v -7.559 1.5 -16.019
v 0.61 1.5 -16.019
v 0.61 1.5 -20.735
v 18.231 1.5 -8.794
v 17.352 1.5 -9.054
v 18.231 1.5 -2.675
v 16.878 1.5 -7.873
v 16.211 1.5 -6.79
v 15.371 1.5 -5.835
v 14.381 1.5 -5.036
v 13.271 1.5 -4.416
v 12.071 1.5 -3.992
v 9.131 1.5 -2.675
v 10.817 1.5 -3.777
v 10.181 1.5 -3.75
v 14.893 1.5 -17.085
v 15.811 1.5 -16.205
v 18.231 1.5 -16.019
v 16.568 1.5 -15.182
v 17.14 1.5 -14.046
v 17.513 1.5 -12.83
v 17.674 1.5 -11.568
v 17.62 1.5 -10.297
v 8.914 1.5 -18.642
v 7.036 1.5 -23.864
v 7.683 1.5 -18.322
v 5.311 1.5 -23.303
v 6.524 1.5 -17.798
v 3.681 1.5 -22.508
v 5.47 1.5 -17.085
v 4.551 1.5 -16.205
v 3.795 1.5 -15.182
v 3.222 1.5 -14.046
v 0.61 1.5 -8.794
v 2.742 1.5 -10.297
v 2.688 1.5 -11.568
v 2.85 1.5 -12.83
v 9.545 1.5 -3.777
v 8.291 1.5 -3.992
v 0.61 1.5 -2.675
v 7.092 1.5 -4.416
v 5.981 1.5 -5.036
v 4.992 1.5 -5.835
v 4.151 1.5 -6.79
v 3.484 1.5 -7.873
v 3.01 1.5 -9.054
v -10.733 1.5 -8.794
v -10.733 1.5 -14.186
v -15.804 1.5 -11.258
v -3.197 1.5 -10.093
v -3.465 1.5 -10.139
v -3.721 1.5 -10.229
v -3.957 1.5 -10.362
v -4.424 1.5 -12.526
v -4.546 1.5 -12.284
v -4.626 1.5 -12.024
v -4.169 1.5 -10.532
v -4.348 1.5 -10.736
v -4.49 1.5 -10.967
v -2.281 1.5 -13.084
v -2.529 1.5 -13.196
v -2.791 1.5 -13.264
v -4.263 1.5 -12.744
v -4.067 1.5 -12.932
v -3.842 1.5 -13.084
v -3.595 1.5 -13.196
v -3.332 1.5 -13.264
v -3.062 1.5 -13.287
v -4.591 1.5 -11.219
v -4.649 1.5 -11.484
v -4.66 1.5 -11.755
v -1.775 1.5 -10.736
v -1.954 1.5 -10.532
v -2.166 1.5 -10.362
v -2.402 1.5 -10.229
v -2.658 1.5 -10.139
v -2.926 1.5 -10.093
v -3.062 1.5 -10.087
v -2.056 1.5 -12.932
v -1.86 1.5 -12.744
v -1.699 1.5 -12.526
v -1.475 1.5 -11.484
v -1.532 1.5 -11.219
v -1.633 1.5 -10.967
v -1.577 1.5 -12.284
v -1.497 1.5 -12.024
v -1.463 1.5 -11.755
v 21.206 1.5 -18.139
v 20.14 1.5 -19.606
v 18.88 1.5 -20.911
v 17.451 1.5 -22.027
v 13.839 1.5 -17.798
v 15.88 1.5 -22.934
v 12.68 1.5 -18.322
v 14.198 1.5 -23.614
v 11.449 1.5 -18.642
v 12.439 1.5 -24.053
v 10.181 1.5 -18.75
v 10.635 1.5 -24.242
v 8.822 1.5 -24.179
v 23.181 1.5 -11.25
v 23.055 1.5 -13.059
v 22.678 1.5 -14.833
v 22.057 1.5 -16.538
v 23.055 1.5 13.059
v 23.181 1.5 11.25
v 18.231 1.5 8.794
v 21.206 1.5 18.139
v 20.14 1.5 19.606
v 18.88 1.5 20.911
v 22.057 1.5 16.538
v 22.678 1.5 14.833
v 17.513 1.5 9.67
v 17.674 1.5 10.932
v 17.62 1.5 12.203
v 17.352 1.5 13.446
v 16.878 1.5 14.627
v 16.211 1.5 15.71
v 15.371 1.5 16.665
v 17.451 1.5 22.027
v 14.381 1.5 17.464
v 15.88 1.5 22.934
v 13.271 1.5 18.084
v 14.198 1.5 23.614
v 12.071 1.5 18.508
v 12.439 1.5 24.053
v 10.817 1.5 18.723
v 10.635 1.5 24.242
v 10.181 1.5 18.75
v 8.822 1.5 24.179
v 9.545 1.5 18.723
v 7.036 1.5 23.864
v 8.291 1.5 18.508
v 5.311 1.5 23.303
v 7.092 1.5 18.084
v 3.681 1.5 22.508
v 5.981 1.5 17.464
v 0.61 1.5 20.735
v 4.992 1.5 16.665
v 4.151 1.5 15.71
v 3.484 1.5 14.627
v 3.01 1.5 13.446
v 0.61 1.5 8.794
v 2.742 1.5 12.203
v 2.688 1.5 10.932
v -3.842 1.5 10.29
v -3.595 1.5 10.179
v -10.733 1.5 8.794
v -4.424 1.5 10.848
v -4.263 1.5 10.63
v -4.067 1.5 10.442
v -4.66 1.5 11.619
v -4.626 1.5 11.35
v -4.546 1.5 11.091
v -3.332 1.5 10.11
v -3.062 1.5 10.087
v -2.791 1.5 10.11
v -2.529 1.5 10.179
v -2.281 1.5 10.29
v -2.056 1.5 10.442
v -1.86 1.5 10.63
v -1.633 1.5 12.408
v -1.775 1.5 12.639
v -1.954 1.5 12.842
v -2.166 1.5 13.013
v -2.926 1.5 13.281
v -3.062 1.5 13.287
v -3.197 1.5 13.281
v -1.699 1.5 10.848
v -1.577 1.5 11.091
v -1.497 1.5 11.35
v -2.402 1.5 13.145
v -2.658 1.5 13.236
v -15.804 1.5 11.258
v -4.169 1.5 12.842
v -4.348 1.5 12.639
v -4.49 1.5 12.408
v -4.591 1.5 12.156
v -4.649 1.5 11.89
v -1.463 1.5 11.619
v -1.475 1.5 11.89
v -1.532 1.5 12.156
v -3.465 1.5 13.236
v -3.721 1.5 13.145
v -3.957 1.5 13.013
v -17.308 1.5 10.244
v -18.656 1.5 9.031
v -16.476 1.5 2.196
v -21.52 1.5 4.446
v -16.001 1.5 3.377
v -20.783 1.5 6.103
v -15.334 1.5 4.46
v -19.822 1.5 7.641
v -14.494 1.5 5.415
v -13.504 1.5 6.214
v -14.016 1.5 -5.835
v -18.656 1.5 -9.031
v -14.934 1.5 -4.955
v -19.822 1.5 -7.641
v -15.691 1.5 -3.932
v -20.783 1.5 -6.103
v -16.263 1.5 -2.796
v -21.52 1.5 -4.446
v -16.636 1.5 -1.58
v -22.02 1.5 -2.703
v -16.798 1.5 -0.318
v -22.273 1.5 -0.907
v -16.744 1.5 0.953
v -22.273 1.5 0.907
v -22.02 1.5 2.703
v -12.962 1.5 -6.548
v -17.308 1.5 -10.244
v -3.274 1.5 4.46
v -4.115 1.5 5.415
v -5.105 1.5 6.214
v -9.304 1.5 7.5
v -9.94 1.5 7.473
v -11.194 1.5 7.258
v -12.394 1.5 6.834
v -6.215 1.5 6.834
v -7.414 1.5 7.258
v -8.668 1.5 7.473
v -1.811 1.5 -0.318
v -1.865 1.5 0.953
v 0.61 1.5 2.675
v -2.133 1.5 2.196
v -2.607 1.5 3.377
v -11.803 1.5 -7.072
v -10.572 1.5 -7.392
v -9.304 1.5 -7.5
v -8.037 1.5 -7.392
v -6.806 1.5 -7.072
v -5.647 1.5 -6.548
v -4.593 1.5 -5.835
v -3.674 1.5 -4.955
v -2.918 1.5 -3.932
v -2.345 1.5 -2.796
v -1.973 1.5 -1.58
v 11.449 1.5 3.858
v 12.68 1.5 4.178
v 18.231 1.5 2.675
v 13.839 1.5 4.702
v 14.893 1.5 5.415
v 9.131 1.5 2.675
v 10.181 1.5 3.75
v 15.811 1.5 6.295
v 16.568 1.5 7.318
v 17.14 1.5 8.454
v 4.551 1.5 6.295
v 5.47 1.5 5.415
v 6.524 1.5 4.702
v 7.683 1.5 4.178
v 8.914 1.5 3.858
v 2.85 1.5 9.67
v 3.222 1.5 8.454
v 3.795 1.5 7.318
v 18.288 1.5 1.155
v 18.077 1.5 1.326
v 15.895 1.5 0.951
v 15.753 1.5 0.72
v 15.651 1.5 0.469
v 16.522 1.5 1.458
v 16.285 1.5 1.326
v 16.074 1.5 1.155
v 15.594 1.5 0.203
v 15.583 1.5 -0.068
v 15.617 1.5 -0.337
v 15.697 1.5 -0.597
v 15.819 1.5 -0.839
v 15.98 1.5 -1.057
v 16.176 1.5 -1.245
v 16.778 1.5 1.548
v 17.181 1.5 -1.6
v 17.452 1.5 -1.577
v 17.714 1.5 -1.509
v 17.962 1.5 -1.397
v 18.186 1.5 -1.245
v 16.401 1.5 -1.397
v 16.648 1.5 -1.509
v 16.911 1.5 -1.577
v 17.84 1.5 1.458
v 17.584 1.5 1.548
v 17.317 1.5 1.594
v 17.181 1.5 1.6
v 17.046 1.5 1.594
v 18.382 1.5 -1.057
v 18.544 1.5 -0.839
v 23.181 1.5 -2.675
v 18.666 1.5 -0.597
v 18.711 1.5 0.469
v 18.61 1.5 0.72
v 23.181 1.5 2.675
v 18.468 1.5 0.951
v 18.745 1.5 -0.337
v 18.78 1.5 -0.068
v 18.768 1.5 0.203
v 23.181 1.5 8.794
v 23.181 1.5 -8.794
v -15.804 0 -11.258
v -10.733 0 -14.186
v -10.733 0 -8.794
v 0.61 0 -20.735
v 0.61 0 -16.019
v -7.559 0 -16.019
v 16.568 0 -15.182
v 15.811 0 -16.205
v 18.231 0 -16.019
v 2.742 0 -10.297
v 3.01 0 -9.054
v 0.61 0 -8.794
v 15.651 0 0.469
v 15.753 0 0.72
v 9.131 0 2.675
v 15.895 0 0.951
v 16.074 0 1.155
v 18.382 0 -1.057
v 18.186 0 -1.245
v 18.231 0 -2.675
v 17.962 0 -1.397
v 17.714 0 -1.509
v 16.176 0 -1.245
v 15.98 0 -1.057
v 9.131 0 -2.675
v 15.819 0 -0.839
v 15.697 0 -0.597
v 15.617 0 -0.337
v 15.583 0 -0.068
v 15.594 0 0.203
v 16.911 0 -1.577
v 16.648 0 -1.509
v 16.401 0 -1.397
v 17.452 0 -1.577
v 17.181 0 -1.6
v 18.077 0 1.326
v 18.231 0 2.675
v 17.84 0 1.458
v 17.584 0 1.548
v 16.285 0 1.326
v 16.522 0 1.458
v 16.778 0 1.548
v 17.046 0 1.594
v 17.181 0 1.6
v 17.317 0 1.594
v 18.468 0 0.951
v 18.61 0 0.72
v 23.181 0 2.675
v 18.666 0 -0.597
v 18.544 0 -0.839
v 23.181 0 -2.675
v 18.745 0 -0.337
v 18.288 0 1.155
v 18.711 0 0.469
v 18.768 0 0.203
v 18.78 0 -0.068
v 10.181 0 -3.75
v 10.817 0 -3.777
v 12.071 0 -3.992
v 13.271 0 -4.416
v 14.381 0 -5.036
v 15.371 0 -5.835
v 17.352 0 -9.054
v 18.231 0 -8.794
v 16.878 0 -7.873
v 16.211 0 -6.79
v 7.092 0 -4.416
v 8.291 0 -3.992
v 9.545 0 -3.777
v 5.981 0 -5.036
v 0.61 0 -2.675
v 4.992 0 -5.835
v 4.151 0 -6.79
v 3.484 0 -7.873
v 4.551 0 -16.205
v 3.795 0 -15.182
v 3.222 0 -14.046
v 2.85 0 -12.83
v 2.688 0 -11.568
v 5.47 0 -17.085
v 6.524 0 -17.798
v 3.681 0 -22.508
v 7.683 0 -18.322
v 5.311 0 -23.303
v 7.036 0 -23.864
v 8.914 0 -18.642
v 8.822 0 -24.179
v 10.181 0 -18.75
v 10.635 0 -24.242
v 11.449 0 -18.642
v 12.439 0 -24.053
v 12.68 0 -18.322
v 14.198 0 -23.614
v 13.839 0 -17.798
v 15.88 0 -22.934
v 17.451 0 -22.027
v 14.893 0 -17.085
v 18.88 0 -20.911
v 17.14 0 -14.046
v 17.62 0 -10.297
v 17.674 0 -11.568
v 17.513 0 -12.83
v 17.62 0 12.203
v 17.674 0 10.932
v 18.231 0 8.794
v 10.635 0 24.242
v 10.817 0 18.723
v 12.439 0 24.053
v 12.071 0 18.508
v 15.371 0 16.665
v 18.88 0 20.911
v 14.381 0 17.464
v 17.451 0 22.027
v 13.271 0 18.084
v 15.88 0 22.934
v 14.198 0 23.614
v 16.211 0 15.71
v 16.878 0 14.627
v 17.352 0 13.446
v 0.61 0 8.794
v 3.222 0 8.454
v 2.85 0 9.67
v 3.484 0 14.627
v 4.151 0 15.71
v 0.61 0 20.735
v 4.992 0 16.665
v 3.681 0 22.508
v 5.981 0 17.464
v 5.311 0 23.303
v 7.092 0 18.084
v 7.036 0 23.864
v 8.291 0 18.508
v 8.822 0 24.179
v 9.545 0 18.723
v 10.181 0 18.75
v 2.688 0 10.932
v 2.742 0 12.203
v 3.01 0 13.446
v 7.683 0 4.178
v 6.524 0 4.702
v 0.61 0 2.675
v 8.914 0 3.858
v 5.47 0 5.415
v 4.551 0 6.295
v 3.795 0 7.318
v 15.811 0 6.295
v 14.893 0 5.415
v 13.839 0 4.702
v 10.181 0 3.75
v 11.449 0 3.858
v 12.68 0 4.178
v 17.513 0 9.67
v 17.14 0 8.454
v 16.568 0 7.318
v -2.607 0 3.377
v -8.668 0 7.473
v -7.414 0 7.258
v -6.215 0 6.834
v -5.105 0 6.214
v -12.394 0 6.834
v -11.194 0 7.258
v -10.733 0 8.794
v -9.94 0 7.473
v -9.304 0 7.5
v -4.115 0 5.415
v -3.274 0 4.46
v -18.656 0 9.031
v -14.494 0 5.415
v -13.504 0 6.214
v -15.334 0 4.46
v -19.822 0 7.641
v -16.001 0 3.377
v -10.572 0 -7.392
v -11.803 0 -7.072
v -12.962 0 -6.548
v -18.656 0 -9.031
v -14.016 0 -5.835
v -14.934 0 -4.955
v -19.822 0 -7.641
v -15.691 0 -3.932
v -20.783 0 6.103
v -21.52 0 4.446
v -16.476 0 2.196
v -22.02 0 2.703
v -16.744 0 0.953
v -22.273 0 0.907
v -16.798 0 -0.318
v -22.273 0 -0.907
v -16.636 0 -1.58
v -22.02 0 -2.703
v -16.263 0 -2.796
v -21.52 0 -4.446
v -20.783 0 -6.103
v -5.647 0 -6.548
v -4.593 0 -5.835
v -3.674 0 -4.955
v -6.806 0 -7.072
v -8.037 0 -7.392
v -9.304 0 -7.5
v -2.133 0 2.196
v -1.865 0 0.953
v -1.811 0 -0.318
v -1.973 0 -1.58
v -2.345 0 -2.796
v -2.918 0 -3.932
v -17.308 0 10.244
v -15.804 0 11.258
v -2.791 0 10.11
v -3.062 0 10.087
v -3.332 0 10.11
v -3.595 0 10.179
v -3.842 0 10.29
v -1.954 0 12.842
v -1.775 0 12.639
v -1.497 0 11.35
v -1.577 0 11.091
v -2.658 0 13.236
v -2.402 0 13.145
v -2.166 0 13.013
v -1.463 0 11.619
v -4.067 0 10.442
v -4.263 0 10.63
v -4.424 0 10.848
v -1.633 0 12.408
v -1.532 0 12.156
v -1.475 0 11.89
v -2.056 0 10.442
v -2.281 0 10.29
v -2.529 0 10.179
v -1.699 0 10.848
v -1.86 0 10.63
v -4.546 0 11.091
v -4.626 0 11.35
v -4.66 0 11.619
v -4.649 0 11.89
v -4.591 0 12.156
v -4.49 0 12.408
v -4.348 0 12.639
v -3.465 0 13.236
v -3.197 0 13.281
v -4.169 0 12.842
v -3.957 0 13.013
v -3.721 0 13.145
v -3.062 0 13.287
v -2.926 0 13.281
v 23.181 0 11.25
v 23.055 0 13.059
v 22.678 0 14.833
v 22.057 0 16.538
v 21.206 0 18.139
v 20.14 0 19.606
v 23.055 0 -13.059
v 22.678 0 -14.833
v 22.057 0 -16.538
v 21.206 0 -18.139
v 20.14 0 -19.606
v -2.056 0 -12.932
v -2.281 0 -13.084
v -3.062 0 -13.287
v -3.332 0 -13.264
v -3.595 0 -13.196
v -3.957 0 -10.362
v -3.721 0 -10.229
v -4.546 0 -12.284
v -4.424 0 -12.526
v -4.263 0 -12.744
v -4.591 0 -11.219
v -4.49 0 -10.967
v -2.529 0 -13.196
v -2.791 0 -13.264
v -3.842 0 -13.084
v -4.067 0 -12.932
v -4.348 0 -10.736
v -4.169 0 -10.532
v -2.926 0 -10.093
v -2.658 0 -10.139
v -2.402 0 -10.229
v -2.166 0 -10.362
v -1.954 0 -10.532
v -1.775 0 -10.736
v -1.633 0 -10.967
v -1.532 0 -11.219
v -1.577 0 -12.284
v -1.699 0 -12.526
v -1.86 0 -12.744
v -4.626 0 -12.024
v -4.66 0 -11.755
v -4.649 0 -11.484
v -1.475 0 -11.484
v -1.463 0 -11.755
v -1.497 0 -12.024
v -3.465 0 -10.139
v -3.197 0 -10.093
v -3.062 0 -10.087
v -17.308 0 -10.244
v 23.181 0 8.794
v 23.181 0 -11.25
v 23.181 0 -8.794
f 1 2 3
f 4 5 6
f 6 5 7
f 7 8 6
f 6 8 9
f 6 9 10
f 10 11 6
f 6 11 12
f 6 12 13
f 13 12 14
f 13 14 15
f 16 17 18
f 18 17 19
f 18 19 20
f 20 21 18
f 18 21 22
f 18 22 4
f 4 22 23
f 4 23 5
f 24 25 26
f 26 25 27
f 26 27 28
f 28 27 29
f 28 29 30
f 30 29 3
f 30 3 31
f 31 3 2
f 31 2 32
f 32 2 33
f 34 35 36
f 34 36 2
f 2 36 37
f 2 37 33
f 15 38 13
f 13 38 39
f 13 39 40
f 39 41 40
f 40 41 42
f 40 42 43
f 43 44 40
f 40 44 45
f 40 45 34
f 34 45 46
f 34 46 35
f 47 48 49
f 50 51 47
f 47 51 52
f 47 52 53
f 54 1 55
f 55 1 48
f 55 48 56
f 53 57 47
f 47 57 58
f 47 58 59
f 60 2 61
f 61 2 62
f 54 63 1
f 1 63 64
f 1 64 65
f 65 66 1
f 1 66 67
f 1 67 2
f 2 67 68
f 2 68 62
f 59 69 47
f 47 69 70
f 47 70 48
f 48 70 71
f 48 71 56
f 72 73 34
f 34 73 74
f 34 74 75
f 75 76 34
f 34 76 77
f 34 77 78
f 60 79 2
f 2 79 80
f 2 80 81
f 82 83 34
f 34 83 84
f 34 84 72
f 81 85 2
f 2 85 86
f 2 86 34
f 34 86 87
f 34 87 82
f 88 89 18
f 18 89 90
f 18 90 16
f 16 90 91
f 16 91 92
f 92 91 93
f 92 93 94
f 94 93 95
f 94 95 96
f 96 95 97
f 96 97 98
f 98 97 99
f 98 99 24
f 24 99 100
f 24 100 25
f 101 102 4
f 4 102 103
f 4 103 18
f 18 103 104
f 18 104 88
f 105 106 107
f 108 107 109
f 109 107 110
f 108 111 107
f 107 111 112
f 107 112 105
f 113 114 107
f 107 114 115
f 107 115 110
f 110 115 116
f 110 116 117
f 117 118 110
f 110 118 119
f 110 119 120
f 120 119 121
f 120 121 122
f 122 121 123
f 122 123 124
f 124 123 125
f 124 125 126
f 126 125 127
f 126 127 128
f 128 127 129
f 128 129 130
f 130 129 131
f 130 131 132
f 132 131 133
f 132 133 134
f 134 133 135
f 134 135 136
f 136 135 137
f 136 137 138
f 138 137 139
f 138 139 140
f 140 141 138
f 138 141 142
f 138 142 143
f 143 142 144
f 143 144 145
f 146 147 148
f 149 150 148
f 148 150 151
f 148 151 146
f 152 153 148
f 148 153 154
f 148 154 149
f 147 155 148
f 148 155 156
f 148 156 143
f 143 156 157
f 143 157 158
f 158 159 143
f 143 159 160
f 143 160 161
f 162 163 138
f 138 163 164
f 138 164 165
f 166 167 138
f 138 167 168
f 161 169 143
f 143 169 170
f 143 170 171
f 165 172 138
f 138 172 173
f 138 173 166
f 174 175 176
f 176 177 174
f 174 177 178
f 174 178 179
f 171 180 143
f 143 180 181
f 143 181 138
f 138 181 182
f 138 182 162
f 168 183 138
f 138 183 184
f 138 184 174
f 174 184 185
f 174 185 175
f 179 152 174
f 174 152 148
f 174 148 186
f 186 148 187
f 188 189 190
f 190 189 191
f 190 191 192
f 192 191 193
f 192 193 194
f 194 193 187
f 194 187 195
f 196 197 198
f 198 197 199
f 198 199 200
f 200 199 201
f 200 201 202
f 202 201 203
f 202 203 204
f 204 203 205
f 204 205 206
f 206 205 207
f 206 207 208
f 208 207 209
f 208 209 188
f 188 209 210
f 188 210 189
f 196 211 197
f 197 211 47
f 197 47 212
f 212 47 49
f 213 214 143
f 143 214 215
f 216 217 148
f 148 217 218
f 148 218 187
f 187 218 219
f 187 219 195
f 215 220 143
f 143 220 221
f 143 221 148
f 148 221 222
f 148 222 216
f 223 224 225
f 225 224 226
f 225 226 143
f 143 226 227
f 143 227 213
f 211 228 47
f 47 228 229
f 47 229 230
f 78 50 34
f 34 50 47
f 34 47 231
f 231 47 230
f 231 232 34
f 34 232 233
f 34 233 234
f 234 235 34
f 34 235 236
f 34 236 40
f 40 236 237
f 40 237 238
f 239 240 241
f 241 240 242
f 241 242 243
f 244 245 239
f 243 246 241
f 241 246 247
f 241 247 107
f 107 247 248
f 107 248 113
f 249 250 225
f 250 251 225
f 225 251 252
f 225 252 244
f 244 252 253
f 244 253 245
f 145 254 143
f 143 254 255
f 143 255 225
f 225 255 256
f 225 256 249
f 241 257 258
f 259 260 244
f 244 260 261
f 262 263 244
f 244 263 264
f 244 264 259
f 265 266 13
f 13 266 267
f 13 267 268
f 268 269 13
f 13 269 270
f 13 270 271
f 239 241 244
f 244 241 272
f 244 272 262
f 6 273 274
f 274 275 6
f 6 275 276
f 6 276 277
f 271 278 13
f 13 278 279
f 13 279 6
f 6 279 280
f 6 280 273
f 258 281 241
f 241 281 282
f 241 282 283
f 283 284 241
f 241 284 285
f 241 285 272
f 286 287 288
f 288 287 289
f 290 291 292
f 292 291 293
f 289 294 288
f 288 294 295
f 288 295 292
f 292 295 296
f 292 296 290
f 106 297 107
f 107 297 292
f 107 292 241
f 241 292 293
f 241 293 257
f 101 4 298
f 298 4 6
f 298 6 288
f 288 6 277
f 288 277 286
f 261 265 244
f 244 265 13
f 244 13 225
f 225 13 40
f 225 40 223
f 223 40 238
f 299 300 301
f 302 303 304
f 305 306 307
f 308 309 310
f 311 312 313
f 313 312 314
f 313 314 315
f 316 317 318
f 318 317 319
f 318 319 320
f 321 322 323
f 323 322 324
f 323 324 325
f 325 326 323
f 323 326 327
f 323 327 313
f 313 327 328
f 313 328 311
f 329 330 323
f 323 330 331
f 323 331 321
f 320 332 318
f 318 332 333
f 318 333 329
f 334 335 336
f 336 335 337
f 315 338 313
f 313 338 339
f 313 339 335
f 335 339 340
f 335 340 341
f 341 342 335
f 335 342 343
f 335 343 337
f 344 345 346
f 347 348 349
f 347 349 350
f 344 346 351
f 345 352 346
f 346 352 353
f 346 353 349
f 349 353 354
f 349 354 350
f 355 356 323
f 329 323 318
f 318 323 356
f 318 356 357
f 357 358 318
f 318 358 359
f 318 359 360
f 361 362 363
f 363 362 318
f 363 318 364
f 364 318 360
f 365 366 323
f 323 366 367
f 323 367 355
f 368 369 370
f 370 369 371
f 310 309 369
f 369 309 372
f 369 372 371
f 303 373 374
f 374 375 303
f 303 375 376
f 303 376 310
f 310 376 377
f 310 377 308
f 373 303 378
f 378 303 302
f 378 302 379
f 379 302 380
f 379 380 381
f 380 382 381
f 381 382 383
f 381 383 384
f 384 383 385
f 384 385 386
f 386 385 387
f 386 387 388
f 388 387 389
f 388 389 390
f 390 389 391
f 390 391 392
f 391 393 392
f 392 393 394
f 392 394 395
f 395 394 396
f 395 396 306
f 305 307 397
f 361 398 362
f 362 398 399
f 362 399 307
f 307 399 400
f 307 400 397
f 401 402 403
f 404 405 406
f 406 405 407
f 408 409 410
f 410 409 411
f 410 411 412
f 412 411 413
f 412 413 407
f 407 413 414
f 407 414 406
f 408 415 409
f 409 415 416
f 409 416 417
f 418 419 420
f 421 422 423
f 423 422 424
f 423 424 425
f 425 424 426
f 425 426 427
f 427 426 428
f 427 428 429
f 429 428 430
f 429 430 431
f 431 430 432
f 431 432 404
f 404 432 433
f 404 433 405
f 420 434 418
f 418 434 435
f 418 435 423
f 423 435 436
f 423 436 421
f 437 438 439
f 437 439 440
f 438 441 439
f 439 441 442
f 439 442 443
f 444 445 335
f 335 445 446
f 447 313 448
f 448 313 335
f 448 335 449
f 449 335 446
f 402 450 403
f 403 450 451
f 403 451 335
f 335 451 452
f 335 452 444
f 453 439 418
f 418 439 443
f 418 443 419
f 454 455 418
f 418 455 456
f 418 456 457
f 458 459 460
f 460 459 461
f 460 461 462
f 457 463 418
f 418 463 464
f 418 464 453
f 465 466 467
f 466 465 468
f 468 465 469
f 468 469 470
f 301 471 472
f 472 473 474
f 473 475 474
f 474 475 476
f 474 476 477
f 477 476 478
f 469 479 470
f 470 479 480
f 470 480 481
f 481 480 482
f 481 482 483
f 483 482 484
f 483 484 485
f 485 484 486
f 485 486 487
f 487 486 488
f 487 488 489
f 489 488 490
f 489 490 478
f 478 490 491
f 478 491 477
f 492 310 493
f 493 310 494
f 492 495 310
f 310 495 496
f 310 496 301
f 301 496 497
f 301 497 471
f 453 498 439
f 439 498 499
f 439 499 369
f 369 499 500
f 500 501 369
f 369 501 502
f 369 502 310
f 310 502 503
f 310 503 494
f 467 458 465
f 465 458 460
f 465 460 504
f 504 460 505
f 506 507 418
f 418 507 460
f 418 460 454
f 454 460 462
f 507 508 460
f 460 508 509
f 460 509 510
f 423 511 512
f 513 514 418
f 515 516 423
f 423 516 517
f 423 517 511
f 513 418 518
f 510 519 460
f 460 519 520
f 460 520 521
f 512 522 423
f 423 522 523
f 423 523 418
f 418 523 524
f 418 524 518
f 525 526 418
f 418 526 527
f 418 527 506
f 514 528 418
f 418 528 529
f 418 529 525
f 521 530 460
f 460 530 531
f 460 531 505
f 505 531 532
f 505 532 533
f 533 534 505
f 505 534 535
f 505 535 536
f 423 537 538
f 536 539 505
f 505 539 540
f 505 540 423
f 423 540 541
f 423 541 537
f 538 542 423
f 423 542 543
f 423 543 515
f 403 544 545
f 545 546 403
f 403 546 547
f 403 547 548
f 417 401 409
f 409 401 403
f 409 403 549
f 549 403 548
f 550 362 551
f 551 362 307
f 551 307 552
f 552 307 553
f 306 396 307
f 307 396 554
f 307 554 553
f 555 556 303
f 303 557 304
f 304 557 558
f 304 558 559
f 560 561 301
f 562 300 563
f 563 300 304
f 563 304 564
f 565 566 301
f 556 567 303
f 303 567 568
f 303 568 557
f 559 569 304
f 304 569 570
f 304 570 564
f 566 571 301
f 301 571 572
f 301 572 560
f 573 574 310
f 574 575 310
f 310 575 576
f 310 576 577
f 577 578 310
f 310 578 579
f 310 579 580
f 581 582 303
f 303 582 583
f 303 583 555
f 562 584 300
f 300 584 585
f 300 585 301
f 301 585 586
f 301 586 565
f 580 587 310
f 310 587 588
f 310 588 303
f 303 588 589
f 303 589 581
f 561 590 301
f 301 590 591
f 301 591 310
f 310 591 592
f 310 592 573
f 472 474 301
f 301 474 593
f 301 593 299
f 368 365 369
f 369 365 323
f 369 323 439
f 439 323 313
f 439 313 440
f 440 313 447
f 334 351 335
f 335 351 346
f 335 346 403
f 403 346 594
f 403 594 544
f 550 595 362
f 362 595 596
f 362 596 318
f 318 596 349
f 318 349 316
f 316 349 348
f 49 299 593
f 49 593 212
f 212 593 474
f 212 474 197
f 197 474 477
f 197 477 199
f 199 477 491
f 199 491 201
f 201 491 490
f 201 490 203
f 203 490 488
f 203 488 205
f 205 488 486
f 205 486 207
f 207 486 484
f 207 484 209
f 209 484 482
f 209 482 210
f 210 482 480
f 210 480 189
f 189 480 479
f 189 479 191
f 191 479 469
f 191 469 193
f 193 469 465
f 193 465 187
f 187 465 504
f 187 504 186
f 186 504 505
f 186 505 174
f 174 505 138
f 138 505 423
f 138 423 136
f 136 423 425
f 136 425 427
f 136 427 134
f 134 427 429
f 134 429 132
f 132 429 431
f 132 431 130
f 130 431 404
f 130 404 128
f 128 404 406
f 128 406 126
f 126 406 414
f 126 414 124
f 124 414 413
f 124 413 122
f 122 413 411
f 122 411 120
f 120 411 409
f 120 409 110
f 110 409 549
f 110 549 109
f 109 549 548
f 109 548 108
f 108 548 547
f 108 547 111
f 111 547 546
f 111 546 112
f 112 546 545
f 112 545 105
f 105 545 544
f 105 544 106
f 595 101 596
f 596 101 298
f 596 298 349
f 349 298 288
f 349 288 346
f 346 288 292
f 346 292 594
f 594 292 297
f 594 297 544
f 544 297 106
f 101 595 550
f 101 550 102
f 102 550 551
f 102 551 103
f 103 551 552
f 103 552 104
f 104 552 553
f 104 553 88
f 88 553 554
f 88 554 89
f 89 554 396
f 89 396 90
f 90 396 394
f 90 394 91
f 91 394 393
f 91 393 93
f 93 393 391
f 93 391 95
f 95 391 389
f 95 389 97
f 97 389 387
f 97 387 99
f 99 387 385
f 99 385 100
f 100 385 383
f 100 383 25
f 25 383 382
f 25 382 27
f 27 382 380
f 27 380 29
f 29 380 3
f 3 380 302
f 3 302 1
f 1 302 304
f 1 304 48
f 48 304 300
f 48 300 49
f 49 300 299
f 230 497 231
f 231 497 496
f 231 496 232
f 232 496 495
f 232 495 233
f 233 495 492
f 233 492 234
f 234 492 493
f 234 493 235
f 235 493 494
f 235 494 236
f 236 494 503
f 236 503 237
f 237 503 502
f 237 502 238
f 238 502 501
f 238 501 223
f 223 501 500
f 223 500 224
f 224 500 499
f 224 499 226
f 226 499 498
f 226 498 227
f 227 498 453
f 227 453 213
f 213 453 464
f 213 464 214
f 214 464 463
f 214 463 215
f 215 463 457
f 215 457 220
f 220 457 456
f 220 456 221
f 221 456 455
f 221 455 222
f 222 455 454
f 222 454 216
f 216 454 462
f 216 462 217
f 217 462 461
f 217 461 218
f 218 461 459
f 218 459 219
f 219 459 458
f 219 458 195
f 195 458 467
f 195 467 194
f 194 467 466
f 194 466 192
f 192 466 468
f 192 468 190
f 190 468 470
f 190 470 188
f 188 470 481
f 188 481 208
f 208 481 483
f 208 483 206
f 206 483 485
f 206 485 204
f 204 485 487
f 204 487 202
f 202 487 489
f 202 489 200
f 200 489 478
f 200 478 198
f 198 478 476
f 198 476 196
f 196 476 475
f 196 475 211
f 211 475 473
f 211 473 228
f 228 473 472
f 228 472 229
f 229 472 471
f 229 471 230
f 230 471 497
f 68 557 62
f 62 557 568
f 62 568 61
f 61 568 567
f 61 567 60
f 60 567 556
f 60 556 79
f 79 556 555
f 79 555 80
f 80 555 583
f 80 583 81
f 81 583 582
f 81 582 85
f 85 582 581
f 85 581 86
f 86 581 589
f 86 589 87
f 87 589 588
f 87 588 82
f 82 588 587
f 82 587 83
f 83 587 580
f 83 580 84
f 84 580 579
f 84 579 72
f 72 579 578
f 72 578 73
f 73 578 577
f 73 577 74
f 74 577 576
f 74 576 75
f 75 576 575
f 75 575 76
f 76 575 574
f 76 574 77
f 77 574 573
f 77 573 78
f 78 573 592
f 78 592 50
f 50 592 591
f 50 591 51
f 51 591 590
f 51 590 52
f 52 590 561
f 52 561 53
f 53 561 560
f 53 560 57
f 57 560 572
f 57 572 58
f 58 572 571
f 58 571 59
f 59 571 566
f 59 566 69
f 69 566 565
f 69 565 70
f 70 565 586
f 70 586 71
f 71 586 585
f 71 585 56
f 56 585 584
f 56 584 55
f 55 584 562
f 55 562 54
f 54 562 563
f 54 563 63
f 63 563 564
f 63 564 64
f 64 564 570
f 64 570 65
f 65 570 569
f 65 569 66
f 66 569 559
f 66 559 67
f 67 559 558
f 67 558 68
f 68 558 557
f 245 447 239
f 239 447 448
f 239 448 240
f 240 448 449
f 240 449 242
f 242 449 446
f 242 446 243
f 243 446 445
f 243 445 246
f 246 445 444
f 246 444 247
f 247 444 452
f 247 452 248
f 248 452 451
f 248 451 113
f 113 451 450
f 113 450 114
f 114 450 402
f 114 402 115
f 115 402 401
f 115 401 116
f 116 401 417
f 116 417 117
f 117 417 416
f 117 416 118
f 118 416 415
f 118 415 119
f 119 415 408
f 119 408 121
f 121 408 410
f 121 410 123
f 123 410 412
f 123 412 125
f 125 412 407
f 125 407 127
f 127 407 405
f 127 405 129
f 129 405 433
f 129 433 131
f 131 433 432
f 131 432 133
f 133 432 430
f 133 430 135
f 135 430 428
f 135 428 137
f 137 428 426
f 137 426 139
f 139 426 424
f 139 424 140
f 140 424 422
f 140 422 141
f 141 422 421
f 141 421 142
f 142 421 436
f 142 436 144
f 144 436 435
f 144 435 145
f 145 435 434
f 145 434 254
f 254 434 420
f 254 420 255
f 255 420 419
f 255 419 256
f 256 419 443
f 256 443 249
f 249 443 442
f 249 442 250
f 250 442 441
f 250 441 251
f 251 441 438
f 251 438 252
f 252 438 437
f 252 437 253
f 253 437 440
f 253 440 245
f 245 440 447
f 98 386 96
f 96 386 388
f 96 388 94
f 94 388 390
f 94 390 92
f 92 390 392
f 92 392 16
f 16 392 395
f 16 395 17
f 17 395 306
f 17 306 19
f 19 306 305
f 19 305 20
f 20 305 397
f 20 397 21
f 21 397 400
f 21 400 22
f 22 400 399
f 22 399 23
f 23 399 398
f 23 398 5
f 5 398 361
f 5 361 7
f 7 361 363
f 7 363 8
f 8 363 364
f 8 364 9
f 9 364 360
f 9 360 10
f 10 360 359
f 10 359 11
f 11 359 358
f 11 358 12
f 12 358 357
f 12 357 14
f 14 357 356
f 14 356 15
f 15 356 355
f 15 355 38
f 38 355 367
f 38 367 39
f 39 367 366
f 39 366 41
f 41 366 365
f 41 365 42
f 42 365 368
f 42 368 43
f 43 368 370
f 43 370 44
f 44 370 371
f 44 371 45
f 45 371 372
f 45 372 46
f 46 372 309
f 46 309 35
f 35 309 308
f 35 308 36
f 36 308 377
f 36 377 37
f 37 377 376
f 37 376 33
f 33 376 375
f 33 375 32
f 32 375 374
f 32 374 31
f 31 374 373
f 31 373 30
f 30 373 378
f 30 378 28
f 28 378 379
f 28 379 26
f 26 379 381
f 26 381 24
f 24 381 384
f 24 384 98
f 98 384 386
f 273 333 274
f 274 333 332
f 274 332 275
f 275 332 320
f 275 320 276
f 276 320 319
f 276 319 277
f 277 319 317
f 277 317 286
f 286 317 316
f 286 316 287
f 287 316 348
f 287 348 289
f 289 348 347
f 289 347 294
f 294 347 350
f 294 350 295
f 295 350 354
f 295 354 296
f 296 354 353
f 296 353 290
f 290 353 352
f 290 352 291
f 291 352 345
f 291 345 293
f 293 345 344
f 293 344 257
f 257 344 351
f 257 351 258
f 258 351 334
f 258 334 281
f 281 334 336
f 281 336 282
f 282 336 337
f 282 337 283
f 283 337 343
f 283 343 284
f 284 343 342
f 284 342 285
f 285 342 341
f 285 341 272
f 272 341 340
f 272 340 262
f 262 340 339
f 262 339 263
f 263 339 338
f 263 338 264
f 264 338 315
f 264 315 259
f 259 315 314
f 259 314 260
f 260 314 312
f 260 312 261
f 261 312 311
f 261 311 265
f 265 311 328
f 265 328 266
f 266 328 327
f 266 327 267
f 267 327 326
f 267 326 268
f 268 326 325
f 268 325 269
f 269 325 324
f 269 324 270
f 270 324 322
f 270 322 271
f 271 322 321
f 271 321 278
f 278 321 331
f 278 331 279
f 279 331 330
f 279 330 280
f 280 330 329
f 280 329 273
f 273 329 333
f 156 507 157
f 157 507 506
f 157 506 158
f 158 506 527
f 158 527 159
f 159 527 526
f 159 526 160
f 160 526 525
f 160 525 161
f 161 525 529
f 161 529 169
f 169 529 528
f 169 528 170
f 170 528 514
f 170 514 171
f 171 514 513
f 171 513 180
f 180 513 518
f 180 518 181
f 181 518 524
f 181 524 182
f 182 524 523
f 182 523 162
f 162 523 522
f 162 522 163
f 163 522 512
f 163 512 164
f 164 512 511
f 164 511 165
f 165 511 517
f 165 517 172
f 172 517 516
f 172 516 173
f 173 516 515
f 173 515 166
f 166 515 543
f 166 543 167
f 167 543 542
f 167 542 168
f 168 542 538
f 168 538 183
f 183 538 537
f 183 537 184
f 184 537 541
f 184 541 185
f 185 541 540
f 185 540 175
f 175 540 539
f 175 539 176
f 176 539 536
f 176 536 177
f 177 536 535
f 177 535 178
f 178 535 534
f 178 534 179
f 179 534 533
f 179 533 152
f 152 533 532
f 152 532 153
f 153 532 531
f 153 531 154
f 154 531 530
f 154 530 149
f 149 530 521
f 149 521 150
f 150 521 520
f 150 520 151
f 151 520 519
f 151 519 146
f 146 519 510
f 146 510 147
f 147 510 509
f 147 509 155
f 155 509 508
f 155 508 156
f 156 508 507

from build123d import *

# Parameters (mm, degrees)
SKETCH1_R           = 7.5
SKETCH1_R_2         = 1.6
SKETCH1_R_3         = 1.599999998
BOSS_EXTRUDE1_DEPTH = 1.5


with BuildPart() as part:
    # Sketch1 → Boss-Extrude1 (new body)
    with BuildSketch(Plane(origin=(0, 0, 0), x_dir=(1, 0, 0), z_dir=(0, 1, 0))):
        with BuildLine():
            Line((-15.804326324, -11.258330249), (3.681245261, -22.508330249))
            ThreePointArc((3.681245261, -22.508330249), (16.681245261, -22.508330249), (23.181245261, -11.25))
            Line((23.181245261, -11.25), (23.181245261, 11.25))
            ThreePointArc((23.181245261, 11.25), (16.681245261, 22.508330249), (3.681245261, 22.508330249))
            Line((3.681245261, 22.508330249), (-15.804326324, 11.258330249))
            ThreePointArc((-15.804326324, 11.258330249), (-22.304326324, 0), (-15.804326324, -11.258330249))
        make_face()
        with Locations((-9.304326324, 0)):
            Circle(SKETCH1_R, mode=Mode.SUBTRACT)
        with Locations((-3.06154027, 11.687177858)):
            Circle(SKETCH1_R_2, mode=Mode.SUBTRACT)
        with Locations((17.181245264, 0)):
            Circle(SKETCH1_R_3, mode=Mode.SUBTRACT)
        with Locations((10.181245261, -11.25)):
            Circle(SKETCH1_R, mode=Mode.SUBTRACT)
        with Locations((10.181245261, 11.25)):
            Circle(SKETCH1_R, mode=Mode.SUBTRACT)
        with Locations((-3.06154027, -11.687177373)):
            Circle(SKETCH1_R_2, mode=Mode.SUBTRACT)
    extrude(amount=BOSS_EXTRUDE1_DEPTH)


solid = part.part
